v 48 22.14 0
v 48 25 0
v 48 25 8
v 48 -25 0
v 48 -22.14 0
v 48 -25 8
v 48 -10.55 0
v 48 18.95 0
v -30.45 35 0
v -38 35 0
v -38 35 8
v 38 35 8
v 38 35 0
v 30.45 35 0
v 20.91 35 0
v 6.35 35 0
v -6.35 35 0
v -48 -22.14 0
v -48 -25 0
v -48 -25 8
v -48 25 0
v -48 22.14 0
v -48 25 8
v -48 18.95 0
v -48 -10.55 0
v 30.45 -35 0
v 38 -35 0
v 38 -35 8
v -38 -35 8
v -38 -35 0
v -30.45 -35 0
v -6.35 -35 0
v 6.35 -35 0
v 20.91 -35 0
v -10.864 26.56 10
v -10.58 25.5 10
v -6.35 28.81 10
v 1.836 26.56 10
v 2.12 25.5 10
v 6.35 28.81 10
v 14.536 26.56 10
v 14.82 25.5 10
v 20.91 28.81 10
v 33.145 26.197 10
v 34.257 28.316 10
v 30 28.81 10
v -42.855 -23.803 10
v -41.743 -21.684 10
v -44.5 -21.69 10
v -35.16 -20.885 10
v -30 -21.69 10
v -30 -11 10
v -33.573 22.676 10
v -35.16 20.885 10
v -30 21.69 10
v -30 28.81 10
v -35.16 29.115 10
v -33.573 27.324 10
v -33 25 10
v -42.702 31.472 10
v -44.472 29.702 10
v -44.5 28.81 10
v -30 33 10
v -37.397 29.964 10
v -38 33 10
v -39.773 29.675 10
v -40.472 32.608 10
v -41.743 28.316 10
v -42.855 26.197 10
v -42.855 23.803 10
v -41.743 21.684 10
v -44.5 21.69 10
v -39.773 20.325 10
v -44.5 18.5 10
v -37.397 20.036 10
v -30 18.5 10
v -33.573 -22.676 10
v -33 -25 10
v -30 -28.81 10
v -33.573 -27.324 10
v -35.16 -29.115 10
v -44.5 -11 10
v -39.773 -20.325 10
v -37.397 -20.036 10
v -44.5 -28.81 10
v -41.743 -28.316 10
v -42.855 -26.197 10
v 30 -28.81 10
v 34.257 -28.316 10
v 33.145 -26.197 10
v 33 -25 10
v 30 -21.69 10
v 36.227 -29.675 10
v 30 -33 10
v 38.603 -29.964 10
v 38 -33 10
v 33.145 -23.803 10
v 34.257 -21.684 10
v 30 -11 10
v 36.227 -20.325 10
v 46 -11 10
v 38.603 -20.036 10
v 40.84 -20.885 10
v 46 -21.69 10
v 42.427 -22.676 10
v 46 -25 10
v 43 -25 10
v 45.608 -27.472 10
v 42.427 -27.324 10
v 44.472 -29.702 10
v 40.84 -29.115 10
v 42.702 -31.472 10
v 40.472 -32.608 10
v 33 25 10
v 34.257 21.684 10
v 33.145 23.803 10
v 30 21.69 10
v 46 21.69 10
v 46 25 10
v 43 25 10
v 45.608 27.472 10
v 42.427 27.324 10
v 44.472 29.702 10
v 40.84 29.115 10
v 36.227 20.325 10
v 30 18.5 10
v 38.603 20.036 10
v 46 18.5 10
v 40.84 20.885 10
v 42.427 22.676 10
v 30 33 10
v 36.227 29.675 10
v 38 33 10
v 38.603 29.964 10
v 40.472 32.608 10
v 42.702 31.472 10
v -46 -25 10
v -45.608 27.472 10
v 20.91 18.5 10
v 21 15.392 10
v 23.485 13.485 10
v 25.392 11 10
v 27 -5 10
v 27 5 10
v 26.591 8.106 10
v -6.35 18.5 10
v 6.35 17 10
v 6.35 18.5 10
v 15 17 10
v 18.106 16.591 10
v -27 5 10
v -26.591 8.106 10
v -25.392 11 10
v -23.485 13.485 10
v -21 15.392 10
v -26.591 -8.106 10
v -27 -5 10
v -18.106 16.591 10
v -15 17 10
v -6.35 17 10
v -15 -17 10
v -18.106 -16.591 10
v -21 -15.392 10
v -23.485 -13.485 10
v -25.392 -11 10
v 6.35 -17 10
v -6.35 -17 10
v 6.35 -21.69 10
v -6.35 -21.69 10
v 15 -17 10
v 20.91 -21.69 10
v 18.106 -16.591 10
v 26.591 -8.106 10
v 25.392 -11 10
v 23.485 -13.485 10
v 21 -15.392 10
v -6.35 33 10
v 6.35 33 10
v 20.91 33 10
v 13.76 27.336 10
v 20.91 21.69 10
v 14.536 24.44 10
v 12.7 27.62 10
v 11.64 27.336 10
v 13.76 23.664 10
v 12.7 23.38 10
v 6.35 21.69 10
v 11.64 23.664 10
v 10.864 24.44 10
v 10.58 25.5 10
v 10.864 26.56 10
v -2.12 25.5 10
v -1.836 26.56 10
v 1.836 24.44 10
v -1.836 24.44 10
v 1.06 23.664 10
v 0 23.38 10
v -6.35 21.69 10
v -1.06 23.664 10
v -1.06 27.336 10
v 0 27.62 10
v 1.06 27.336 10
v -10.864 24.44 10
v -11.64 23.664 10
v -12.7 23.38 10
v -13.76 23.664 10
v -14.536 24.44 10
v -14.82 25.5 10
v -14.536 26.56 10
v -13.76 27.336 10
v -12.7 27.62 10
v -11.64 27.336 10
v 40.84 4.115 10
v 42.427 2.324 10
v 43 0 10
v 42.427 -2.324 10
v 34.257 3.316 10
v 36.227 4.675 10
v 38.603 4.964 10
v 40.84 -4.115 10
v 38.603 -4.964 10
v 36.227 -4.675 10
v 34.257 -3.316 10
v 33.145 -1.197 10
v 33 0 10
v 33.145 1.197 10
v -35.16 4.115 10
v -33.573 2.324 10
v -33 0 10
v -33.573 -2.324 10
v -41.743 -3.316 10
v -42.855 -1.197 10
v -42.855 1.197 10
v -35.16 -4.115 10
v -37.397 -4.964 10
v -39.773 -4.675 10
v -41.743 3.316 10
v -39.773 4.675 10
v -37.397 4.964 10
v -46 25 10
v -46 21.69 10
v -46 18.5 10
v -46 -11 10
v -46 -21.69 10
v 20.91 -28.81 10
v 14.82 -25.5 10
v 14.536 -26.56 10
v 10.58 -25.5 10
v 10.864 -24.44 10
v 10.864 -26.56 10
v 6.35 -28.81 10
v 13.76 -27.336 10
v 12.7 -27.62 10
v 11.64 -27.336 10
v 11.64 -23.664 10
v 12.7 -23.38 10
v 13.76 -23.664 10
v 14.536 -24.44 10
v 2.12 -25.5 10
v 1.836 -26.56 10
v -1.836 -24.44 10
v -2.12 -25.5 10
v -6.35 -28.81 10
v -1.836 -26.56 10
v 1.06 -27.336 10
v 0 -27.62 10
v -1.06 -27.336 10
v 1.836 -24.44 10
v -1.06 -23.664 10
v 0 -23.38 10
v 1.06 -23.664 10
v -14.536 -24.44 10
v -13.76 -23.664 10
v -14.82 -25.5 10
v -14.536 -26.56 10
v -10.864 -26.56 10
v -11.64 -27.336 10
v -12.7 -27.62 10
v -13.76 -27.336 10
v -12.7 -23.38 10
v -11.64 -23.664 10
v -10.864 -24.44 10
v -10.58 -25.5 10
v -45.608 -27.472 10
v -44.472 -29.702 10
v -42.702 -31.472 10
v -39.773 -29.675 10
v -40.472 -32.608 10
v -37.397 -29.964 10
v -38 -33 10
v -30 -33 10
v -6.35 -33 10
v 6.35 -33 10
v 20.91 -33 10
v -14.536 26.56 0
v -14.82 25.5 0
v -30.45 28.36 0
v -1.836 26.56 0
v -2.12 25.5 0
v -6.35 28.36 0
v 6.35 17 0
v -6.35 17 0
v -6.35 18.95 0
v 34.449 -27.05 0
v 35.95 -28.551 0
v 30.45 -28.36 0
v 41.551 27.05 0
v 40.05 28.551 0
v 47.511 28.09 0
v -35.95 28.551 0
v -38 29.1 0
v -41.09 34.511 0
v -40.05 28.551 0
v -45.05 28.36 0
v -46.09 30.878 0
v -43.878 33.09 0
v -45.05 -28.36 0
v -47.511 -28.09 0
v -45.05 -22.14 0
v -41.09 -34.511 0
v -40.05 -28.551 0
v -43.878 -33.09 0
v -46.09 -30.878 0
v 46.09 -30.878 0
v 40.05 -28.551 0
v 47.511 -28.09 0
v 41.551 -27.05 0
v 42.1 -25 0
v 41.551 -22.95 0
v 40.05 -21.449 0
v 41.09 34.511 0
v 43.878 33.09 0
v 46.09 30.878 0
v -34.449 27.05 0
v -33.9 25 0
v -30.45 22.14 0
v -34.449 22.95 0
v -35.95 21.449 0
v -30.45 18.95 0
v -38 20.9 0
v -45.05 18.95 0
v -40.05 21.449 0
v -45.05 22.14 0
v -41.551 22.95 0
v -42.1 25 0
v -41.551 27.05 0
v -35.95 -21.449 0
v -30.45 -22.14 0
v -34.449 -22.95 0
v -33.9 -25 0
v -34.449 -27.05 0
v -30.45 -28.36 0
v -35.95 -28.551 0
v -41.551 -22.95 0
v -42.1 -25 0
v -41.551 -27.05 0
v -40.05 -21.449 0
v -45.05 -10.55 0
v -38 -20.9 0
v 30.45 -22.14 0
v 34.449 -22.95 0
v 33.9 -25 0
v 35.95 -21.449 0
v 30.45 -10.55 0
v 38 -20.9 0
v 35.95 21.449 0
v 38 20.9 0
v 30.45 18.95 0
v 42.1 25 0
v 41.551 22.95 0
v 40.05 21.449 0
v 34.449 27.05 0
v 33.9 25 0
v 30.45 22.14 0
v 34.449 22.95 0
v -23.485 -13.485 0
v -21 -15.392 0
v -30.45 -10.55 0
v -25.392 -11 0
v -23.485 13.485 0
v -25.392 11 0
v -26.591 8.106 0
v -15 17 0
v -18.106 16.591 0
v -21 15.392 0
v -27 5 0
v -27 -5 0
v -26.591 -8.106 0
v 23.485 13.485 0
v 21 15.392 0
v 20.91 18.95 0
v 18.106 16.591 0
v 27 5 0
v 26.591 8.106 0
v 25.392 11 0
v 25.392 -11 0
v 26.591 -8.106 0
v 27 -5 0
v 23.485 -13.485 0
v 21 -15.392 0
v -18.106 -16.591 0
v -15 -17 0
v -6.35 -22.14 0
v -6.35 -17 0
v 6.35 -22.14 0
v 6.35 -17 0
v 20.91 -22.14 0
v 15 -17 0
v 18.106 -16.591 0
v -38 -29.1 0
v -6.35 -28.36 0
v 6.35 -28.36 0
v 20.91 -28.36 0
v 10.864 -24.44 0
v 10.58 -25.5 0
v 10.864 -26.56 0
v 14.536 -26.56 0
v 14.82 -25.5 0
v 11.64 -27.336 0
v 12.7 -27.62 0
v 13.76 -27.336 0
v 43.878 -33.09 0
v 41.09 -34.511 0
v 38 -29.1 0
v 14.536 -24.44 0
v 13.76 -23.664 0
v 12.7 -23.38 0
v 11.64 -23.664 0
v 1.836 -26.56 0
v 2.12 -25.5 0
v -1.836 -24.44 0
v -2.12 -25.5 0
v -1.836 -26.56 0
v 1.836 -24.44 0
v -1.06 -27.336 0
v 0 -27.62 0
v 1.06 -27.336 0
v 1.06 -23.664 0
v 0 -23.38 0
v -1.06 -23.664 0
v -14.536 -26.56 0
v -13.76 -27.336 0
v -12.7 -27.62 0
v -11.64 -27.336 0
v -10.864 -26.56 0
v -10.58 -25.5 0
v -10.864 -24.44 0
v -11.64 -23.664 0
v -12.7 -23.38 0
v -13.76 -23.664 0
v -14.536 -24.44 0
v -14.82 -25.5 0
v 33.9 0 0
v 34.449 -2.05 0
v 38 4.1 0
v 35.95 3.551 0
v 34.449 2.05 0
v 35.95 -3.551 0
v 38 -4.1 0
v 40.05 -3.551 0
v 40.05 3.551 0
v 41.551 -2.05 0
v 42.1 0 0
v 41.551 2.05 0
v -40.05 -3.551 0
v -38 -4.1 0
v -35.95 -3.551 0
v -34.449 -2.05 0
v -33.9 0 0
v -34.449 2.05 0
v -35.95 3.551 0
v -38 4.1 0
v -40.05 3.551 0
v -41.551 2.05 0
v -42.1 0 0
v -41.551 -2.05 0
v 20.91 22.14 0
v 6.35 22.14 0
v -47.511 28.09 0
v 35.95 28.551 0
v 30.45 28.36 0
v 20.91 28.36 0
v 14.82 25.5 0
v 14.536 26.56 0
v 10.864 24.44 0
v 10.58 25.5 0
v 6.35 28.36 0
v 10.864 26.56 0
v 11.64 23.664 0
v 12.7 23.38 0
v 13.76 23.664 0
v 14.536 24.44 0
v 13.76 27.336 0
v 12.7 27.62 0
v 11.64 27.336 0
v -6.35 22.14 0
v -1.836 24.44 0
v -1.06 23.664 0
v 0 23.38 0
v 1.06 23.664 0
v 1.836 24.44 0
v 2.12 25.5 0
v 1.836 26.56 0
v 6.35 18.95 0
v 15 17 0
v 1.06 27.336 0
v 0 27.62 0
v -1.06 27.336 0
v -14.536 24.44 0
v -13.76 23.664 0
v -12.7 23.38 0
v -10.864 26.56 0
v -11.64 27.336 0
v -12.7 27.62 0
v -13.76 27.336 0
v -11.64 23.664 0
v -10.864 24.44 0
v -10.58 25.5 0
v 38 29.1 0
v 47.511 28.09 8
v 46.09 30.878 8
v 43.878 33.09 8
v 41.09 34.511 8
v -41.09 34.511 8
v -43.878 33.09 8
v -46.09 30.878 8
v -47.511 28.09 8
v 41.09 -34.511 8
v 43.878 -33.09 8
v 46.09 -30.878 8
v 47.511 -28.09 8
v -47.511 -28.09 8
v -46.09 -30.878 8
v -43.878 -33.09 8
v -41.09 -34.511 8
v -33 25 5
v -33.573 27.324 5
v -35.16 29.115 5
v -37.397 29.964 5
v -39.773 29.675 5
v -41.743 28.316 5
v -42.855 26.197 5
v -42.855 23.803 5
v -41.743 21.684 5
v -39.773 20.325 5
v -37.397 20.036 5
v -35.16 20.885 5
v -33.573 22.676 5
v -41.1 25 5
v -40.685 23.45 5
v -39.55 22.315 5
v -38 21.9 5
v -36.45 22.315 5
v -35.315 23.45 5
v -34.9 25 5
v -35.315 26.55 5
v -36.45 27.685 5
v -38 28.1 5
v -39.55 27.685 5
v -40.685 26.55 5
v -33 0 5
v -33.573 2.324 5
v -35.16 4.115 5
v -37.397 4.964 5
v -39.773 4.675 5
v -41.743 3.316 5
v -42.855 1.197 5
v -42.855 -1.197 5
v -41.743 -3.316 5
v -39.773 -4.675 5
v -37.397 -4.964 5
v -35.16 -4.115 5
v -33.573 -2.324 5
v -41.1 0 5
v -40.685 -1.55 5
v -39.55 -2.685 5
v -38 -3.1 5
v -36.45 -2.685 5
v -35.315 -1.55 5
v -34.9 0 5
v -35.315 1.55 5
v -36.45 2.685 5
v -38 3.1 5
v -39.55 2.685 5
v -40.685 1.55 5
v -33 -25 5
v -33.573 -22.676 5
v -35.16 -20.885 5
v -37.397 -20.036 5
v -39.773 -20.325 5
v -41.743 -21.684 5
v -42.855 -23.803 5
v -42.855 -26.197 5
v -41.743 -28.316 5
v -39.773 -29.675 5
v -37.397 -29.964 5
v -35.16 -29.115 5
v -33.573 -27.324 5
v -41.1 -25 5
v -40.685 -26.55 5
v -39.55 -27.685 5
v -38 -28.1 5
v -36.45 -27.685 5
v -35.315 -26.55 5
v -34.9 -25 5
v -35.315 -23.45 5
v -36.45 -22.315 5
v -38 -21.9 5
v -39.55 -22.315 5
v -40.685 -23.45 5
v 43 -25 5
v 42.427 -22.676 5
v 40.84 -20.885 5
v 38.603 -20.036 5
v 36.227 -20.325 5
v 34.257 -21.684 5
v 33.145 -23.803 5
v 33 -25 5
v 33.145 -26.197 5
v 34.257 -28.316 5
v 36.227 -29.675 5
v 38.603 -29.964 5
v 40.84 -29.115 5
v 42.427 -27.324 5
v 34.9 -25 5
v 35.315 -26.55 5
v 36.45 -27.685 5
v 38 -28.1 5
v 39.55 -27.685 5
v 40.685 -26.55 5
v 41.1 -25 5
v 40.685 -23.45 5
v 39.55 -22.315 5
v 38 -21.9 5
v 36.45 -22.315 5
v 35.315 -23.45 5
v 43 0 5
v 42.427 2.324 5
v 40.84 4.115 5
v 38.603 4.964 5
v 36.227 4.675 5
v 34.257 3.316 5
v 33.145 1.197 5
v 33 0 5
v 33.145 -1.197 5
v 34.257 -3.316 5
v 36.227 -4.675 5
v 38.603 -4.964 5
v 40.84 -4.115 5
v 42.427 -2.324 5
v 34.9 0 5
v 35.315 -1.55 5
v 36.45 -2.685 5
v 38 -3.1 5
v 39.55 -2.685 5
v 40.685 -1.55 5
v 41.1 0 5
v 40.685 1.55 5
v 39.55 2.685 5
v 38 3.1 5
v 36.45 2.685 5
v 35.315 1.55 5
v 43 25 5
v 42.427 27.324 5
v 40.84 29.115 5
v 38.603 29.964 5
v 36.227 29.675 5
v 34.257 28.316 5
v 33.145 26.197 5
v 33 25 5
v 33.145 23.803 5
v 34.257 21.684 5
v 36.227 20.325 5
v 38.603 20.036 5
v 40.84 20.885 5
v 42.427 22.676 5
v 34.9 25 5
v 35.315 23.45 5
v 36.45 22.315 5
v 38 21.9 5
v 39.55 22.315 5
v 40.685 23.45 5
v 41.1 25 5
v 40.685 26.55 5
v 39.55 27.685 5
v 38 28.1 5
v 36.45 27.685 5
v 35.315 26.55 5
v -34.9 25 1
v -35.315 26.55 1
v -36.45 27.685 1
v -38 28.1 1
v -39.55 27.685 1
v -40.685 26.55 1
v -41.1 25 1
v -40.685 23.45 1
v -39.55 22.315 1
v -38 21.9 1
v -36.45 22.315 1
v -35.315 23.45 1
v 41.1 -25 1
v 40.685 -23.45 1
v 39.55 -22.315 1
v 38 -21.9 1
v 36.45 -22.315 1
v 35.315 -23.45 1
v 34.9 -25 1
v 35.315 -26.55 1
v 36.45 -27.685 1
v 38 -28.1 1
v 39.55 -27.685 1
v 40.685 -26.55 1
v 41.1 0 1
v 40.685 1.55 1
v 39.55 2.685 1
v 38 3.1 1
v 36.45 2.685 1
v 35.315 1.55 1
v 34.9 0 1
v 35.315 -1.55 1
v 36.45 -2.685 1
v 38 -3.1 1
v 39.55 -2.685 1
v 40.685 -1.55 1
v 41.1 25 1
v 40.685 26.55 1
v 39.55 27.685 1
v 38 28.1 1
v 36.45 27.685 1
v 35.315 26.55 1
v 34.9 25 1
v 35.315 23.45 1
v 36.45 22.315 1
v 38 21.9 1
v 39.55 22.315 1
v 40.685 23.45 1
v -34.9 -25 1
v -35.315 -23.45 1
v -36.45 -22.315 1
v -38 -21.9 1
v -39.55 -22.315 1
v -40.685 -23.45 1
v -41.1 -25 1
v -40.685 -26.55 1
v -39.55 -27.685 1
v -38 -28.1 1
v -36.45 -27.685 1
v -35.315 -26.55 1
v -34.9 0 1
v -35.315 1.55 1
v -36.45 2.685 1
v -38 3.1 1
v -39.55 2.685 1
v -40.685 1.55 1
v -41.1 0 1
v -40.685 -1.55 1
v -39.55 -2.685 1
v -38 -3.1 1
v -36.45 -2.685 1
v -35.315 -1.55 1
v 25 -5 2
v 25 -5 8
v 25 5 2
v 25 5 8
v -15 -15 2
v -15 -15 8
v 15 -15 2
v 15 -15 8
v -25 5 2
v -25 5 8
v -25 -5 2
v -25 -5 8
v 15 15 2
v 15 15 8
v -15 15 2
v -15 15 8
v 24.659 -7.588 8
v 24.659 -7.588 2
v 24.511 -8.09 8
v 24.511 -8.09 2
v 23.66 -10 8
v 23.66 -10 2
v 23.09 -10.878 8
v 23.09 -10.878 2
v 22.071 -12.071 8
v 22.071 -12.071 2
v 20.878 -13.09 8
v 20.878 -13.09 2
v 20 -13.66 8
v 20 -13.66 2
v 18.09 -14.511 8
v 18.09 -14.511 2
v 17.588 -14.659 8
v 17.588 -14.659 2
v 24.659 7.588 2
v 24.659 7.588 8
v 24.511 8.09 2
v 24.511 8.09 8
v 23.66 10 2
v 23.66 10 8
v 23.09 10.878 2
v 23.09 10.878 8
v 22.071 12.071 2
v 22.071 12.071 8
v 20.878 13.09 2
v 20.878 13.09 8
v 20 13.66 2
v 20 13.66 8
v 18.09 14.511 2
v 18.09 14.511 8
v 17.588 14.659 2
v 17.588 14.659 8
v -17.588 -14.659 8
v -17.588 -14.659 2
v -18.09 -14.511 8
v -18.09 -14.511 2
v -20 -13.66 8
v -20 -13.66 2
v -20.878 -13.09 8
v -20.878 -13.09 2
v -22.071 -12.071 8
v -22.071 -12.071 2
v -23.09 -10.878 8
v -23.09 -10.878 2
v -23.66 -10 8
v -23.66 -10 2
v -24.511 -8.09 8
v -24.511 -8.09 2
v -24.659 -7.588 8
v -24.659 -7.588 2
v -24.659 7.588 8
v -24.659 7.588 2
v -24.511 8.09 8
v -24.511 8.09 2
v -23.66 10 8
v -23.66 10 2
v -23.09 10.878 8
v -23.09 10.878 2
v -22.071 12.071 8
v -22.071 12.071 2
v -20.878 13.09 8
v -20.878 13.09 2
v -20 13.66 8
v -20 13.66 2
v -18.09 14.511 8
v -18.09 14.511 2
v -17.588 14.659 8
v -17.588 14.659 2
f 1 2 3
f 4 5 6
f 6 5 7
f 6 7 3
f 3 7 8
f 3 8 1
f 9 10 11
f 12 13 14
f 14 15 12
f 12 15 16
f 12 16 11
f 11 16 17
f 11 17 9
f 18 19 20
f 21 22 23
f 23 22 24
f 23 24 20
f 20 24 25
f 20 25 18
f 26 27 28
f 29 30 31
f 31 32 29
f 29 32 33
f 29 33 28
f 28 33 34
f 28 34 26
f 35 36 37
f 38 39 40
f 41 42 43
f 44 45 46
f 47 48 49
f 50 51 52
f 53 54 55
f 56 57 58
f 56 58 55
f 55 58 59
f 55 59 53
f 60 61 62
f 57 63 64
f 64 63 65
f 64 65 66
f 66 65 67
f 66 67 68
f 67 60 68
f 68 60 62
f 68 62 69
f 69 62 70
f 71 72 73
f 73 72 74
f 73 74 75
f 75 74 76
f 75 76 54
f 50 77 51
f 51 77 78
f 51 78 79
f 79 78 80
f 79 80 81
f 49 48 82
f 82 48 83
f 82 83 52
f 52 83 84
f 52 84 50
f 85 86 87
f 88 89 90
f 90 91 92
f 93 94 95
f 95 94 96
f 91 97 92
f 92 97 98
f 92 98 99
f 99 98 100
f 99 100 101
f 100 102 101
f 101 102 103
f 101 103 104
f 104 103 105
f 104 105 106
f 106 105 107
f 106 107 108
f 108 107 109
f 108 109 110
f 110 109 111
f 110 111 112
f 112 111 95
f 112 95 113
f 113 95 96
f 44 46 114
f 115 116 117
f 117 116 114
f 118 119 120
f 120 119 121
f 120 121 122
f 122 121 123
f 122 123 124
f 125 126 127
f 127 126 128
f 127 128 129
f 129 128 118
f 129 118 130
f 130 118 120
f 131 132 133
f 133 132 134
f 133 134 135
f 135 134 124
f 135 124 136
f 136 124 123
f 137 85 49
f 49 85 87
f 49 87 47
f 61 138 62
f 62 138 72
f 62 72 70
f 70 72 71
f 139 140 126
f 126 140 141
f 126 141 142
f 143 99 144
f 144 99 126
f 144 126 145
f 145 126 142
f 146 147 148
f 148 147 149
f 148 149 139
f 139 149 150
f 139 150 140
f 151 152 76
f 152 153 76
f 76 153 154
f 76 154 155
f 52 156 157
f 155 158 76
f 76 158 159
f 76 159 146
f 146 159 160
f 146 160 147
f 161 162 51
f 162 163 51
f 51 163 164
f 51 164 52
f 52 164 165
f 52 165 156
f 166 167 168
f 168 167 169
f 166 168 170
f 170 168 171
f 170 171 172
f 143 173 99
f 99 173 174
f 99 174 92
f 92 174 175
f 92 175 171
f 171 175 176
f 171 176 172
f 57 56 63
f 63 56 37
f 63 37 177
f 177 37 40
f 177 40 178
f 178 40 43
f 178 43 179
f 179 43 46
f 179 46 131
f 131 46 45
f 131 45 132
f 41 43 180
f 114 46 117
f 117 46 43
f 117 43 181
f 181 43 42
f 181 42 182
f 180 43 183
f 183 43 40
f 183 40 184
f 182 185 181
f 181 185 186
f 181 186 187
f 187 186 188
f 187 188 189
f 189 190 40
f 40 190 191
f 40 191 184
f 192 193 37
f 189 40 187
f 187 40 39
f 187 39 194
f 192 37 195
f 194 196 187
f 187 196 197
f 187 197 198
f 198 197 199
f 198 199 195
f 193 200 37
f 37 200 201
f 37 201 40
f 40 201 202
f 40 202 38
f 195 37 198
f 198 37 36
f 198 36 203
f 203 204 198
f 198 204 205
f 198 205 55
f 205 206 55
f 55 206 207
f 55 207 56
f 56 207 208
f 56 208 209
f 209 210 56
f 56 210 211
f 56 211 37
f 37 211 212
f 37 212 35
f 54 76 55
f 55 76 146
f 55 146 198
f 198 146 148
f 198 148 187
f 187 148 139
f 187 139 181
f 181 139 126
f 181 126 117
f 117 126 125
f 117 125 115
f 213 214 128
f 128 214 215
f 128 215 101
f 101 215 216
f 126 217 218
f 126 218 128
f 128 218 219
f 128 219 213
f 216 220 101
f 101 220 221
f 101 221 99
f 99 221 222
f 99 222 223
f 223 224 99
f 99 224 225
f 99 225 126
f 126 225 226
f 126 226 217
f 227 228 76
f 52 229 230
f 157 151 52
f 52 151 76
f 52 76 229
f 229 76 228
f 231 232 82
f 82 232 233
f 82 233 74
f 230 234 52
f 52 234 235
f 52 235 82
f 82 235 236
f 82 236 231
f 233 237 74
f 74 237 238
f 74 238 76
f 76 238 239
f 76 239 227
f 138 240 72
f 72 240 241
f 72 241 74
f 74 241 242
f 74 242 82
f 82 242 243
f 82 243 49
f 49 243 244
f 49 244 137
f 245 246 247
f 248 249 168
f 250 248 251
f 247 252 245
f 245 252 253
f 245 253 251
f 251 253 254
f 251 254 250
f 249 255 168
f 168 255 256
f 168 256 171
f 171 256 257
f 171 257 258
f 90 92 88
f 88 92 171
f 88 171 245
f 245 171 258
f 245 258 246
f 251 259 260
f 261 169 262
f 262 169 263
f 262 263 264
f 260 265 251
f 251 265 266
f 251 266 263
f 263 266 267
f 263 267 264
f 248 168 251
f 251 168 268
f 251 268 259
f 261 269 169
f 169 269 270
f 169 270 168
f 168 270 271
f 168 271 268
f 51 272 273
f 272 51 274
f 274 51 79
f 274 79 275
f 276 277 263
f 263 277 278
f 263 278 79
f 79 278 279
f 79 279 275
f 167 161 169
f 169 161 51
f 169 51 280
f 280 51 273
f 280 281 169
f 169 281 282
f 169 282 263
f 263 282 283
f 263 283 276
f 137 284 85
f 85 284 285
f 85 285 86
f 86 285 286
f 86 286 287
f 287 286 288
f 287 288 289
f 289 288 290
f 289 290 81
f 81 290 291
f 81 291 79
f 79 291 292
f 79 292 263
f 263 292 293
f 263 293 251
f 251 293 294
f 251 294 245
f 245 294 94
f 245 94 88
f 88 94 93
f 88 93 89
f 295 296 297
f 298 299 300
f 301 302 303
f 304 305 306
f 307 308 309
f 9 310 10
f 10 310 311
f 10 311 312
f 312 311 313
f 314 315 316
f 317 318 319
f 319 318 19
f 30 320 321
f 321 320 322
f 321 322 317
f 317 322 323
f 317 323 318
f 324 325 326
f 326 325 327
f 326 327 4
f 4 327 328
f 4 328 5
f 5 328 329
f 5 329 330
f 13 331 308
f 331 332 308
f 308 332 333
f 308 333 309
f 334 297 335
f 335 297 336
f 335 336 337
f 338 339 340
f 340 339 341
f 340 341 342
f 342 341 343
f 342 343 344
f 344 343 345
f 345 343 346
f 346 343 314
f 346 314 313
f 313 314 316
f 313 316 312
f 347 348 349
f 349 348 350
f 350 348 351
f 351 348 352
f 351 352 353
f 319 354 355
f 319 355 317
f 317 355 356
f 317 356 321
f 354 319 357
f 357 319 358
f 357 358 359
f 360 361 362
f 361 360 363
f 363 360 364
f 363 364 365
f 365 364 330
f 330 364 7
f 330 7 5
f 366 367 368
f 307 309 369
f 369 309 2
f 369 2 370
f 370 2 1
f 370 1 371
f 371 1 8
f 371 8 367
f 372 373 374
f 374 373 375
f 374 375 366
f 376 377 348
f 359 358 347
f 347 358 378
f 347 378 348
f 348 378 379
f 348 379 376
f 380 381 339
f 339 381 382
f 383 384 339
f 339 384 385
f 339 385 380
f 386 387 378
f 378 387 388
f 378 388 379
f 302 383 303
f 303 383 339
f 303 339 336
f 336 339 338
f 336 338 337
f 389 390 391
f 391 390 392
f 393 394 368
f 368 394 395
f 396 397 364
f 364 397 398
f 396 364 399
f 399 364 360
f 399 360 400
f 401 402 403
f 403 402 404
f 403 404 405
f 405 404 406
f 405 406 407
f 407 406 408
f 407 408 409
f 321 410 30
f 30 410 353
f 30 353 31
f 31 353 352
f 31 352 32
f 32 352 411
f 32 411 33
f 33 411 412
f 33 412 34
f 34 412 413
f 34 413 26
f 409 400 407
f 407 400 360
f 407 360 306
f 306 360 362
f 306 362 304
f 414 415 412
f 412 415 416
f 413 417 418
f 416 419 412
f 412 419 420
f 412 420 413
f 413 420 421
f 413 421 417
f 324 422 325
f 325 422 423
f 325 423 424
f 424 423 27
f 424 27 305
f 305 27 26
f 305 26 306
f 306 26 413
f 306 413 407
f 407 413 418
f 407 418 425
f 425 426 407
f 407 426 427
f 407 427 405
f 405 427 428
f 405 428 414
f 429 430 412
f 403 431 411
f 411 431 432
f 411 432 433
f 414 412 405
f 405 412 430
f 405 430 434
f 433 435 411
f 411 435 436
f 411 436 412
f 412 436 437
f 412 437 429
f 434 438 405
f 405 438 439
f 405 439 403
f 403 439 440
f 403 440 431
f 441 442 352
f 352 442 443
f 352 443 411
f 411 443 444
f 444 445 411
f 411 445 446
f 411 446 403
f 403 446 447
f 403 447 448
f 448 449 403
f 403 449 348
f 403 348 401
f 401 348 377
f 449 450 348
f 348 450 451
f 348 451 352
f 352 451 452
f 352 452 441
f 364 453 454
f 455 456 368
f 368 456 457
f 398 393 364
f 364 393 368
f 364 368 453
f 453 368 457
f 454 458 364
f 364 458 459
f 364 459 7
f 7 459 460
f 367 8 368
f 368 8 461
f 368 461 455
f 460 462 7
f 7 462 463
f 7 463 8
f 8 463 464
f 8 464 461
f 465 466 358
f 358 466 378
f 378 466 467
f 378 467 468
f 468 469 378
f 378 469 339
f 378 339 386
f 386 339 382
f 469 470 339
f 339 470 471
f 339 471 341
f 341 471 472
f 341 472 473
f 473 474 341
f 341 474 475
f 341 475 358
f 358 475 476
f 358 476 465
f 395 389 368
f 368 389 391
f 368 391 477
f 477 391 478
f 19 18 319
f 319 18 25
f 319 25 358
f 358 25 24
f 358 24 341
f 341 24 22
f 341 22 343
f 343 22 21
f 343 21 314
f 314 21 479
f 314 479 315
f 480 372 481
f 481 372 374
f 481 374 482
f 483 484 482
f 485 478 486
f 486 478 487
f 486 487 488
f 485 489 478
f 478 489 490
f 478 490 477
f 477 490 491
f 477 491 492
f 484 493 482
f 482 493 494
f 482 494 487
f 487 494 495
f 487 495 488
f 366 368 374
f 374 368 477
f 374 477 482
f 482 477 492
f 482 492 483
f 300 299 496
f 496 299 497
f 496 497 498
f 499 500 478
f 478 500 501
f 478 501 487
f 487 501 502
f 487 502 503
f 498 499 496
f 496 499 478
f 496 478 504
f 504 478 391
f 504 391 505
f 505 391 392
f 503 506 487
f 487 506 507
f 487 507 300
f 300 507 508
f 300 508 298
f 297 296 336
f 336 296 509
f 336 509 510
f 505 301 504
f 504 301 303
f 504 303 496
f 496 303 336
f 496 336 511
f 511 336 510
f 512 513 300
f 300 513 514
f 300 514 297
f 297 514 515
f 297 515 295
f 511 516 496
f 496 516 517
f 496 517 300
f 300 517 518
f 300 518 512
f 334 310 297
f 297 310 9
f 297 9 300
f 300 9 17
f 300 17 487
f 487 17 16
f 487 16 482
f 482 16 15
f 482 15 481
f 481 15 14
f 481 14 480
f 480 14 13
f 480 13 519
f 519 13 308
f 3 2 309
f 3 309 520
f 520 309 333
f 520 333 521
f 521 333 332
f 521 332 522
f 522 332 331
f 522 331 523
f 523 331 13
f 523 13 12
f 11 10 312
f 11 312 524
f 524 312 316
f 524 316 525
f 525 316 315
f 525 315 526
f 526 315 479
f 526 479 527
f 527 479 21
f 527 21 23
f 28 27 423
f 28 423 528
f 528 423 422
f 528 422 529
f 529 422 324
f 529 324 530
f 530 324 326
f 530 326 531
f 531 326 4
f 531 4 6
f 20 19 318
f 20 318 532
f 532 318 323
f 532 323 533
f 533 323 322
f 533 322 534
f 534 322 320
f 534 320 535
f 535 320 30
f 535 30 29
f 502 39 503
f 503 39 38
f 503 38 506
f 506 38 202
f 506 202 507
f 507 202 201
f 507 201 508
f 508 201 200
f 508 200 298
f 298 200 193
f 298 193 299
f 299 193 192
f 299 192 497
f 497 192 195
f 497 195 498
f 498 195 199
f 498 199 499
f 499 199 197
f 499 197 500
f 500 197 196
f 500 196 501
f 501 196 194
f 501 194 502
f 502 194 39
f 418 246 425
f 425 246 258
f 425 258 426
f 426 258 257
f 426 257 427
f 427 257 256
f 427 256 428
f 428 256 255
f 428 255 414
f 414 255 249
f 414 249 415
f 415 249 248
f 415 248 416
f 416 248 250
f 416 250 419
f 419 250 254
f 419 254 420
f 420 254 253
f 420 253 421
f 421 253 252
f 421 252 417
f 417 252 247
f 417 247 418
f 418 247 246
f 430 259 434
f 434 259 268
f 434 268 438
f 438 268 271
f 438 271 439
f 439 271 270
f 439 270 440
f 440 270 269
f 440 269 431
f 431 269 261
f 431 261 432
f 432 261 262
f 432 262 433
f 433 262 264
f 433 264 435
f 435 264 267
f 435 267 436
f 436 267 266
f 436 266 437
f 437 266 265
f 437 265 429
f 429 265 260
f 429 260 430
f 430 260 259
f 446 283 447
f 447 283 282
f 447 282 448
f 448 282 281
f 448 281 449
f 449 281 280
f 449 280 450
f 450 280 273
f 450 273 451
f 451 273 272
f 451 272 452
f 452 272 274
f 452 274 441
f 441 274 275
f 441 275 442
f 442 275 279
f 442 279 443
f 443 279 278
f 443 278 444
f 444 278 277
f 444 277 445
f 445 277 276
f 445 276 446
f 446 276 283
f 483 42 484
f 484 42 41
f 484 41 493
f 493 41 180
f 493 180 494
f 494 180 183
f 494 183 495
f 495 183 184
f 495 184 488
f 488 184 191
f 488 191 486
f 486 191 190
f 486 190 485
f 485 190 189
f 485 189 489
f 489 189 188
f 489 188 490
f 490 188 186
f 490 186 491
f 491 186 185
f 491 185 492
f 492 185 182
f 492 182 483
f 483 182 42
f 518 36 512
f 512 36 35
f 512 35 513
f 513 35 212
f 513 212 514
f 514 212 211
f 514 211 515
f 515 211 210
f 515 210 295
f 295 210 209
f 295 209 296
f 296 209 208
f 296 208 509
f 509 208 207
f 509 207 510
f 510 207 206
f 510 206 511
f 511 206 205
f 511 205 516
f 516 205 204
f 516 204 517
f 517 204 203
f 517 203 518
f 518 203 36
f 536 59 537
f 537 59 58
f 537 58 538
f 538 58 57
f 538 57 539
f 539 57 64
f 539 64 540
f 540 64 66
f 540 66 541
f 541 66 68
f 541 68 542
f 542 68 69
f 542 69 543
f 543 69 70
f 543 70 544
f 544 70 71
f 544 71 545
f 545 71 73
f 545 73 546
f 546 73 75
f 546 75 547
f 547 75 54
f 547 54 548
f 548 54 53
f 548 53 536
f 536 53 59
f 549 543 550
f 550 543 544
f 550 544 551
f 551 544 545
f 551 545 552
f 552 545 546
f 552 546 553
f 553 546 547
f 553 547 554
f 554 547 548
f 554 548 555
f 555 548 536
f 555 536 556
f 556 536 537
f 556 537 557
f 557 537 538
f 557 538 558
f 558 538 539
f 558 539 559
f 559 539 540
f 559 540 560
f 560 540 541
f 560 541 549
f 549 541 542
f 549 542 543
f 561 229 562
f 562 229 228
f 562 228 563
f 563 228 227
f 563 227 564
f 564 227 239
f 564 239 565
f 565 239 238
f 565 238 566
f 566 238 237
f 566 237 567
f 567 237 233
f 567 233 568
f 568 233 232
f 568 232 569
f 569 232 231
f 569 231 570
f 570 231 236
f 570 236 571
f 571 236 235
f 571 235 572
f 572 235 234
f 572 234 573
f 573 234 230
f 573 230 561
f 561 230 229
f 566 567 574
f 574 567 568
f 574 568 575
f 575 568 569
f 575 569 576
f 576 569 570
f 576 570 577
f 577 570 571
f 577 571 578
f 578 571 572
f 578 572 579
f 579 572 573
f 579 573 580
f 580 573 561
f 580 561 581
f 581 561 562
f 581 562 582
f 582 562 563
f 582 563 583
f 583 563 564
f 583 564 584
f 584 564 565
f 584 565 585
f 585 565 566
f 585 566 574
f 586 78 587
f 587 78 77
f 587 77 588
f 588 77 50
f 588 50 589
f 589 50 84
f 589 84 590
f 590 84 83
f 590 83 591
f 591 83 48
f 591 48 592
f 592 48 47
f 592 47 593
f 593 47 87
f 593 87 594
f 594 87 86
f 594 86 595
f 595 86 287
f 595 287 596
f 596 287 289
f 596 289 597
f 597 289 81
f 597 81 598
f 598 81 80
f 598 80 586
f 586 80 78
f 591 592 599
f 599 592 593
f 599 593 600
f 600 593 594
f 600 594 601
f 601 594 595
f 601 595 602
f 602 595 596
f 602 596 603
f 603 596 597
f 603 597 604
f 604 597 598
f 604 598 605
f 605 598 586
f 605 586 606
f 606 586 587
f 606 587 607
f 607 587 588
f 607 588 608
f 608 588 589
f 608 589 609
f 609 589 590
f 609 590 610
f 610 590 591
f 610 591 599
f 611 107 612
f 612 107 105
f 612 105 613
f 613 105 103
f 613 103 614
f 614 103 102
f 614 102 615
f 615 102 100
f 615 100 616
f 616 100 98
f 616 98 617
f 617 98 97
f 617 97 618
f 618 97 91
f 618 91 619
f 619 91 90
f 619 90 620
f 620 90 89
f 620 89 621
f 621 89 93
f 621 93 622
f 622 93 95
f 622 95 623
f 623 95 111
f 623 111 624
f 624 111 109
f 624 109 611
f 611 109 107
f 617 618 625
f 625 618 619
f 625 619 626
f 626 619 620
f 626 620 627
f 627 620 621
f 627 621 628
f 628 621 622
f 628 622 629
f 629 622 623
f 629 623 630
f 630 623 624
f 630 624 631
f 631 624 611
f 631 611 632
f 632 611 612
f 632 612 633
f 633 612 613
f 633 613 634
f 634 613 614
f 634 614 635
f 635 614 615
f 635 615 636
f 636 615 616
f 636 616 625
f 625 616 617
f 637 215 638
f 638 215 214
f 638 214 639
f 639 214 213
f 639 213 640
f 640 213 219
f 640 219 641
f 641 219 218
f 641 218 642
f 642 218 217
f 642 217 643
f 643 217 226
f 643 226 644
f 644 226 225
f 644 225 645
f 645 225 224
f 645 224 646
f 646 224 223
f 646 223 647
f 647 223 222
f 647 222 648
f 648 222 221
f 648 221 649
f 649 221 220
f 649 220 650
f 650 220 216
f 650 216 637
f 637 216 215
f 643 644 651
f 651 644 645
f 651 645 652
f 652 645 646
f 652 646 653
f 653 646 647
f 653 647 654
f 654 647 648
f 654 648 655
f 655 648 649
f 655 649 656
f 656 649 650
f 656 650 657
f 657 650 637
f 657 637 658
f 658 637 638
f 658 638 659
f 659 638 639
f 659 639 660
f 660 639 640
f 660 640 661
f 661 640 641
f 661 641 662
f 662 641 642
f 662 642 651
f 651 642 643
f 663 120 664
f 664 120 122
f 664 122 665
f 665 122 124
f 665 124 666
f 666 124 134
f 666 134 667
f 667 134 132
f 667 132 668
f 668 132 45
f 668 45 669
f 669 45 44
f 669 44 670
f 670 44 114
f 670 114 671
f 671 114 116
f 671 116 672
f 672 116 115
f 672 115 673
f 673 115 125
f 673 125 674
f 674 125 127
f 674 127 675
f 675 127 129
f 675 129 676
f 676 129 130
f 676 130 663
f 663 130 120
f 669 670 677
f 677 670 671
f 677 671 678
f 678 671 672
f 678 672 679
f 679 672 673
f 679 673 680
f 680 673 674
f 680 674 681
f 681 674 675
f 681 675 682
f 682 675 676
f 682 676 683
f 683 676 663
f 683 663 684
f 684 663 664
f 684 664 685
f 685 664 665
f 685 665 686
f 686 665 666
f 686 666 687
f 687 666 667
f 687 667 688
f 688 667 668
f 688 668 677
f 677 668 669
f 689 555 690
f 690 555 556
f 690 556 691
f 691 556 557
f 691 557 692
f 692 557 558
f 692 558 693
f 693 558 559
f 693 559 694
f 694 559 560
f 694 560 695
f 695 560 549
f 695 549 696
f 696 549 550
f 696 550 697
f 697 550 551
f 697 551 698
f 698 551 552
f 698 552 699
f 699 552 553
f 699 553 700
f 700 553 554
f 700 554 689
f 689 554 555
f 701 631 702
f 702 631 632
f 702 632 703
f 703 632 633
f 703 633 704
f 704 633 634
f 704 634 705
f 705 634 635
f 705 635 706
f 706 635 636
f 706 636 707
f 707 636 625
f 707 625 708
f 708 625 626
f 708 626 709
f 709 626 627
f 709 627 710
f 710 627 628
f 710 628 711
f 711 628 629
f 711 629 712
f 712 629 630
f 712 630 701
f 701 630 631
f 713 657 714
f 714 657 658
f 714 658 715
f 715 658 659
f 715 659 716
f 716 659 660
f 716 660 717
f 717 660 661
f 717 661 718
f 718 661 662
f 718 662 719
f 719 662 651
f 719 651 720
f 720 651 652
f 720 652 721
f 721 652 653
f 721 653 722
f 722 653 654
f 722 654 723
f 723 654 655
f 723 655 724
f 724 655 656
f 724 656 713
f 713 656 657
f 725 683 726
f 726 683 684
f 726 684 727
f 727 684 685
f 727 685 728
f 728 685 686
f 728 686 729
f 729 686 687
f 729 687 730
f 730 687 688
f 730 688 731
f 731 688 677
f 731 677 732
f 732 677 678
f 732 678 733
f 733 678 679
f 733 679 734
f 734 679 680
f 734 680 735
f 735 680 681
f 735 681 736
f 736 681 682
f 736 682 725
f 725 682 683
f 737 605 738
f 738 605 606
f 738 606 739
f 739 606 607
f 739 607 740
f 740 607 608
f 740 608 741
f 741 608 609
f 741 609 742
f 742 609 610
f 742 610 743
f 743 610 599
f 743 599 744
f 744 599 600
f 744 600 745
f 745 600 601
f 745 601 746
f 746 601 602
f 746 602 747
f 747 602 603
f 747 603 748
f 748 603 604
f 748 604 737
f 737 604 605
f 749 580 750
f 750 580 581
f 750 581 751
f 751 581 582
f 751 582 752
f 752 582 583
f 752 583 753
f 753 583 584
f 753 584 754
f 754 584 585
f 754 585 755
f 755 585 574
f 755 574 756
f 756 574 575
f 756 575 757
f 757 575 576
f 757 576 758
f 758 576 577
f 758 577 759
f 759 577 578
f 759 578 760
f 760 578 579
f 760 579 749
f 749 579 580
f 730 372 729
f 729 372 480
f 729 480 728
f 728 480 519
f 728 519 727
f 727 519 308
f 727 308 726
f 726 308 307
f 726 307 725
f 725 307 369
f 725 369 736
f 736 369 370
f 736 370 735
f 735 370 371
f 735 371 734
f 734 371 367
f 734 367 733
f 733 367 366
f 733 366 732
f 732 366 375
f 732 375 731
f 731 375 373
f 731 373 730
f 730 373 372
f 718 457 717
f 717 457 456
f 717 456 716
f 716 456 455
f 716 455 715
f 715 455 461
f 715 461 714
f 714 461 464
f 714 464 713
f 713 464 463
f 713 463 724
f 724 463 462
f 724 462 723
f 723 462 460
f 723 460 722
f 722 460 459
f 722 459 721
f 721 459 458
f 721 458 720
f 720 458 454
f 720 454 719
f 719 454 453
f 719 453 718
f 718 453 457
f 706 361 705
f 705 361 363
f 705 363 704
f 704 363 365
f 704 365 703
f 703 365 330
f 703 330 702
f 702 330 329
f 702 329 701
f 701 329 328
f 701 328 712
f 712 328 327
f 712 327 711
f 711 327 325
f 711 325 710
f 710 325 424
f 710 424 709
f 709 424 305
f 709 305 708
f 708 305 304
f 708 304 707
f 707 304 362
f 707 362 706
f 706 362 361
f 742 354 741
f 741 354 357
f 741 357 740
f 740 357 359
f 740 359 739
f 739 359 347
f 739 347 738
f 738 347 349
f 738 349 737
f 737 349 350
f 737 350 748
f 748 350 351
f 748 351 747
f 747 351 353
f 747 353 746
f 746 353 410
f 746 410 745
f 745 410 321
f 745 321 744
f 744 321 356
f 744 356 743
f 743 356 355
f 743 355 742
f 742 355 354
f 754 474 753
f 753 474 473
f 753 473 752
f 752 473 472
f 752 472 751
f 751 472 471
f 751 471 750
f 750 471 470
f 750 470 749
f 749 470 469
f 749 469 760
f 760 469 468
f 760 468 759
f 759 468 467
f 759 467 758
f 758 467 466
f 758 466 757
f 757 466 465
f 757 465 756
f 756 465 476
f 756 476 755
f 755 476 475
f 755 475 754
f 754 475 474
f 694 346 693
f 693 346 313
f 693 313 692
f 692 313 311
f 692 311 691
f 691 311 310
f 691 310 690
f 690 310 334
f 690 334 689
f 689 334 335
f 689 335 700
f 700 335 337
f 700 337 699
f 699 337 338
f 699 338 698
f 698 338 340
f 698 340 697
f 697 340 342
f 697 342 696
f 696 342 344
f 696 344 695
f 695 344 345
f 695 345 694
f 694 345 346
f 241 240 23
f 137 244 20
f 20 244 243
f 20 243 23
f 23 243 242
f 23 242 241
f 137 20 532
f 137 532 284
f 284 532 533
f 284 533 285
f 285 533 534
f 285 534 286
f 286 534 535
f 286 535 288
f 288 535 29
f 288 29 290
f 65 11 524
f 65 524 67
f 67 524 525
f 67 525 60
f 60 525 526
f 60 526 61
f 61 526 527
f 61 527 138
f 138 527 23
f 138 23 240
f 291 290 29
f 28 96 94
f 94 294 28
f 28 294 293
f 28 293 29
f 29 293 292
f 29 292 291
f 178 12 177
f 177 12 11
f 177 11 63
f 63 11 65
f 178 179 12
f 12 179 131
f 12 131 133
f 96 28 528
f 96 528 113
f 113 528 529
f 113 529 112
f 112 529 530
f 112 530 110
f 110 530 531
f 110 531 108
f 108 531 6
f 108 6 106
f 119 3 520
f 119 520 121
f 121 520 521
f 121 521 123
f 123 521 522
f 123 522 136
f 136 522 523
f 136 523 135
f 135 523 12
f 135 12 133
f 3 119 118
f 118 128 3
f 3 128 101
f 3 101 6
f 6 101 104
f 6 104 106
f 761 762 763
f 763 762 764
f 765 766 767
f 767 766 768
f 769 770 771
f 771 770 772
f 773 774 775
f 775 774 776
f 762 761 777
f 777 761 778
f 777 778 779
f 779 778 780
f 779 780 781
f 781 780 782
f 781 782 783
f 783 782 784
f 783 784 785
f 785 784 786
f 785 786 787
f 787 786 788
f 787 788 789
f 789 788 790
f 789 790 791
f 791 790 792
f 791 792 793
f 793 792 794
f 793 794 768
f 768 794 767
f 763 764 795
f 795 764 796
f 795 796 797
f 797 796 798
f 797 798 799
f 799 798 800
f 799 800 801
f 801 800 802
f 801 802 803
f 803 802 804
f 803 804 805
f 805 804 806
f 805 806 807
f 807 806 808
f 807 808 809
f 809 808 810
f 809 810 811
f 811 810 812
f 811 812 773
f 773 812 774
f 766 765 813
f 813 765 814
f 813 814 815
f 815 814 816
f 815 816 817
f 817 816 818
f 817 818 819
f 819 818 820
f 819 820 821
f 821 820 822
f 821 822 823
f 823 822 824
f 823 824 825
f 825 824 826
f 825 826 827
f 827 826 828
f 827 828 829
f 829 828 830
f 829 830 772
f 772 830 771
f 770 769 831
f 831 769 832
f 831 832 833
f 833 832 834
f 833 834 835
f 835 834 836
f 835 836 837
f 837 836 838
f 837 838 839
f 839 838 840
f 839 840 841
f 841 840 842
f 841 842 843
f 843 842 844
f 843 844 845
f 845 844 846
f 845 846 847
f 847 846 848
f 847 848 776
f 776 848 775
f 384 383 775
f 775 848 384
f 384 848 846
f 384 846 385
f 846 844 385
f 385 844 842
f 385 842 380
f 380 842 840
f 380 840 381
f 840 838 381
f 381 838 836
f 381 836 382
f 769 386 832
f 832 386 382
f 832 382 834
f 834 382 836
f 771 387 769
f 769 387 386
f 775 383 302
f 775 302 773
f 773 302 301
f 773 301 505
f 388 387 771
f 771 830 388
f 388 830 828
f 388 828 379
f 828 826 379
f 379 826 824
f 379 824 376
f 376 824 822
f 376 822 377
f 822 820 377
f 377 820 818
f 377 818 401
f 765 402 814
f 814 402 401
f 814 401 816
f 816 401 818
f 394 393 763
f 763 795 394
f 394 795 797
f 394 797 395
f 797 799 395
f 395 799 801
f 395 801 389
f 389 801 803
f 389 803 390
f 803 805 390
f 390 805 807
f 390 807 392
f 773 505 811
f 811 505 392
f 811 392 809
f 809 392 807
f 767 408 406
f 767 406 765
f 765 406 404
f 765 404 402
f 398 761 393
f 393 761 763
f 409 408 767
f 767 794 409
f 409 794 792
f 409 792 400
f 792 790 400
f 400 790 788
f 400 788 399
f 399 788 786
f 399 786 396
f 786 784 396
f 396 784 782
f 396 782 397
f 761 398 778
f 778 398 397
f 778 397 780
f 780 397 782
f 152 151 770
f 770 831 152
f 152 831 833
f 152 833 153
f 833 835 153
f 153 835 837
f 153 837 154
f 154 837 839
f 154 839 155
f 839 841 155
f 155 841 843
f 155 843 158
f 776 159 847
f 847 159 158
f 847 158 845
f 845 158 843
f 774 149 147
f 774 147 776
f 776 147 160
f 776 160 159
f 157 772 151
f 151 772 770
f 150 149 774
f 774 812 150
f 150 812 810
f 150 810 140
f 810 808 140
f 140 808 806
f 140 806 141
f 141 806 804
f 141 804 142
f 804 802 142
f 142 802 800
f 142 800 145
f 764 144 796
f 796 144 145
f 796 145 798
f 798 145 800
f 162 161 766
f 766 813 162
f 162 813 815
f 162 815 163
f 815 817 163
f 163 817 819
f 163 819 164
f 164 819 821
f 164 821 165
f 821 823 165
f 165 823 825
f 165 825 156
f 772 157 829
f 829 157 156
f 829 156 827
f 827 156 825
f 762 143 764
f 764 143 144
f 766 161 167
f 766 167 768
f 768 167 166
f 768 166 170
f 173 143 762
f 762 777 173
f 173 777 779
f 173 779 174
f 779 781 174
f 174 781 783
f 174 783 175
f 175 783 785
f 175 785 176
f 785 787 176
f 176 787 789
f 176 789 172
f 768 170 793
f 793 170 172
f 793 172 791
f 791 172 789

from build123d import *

# Parameters (mm, degrees)
SKETCH_1_W          = 96
SKETCH_1_H          = 70
EXTRUDE_1_DEPTH     = 10
FILLET_1_R          = 10
SKETCH_2_R          = 2.12
CUT_EXTRUDE_1_DEPTH = 10
SKETCH_3_R          = 5
CUT_EXTRUDE_2_DEPTH = 5
SKETCH_4_R          = 3.1
CUT_EXTRUDE_3_DEPTH = 5
CHAMFER_1_SIZE      = 1
CHAMFER_2_SIZE      = 2
SKETCH_5_W          = 50
SKETCH_5_H          = 30
CUT_EXTRUDE_4_DEPTH = 10
FILLET_2_R          = 10
CHAMFER_3_SIZE      = 2


with BuildPart() as part:
    # 草图1 → 凸台-拉伸1 (new body)
    with BuildSketch(Plane.XY):
        Rectangle(SKETCH_1_W, SKETCH_1_H)
    extrude(amount=EXTRUDE_1_DEPTH)

    # 圆角1
    fillet_1_edges = [part.edges().sort_by_distance(p)[0] for p in [
        (48, -35, 5),
        (-48, -35, 5),
        (-48, 35, 5),
        (48, 35, 5),
    ]]
    fillet(fillet_1_edges, radius=FILLET_1_R)

    # 草图2 → 切除-拉伸1 (cut)
    with BuildSketch(Plane.XY.offset(10)):
        with Locations((0, 25.5)):
            Circle(SKETCH_2_R)
        with Locations((-12.7, 25.5)):
            Circle(SKETCH_2_R)
        with Locations(Location((12.7, 25.5, 0), (0, 0, 180))):
            Circle(SKETCH_2_R)
        with Locations((-12.7, -25.5)):
            Circle(SKETCH_2_R)
        with Locations((0, -25.5)):
            Circle(SKETCH_2_R)
        with Locations((12.7, -25.5)):
            Circle(SKETCH_2_R)
    extrude(amount=-CUT_EXTRUDE_1_DEPTH, mode=Mode.SUBTRACT)

    # 草图3 → 切除-拉伸2 (cut)
    with BuildSketch(Plane.XY.offset(10)):
        with Locations((-38, 25)):
            Circle(SKETCH_3_R)
        with Locations((-38, 0)):
            Circle(SKETCH_3_R)
        with Locations((-38, -25)):
            Circle(SKETCH_3_R)
        with Locations(Location((38, -25, 0), (0, 0, 180))):
            Circle(SKETCH_3_R)
        with Locations(Location((38, 0, 0), (0, 0, 180))):
            Circle(SKETCH_3_R)
        with Locations(Location((38, 25, 0), (0, 0, 180))):
            Circle(SKETCH_3_R)
    extrude(amount=-CUT_EXTRUDE_2_DEPTH, mode=Mode.SUBTRACT)

    # 草图4 → 切除-拉伸3 (cut)
    with BuildSketch(Plane.XY.offset(5)):
        with Locations((-38, 25)):
            Circle(SKETCH_4_R)
        with Locations((-38, 0)):
            Circle(SKETCH_4_R)
        with Locations((-38, -25)):
            Circle(SKETCH_4_R)
        with Locations((38, 25)):
            Circle(SKETCH_4_R)
        with Locations((38, 0)):
            Circle(SKETCH_4_R)
        with Locations((38, -25)):
            Circle(SKETCH_4_R)
    extrude(amount=-CUT_EXTRUDE_3_DEPTH, mode=Mode.SUBTRACT)

    # 倒角1
    chamfer_1_edges = [part.edges().sort_by_distance(p)[0] for p in [
        (34.9, 0, 0),
        (34.9, -25, 0),
        (-41.1, 25, 0),
        (-41.1, 0, 0),
        (-41.1, -25, 0),
        (34.9, 25, 0),
    ]]
    chamfer(chamfer_1_edges, length=CHAMFER_1_SIZE)

    # 倒角2
    chamfer_2_edges = [part.edges().sort_by_distance(p)[0] for p in [
        (0, 35, 10),
        (48, 0, 10),
        (-48, 0, 10),
        (0, -35, 10),
        (-45.071067812, -32.071067812, 10),
        (45.071067812, -32.071067812, 10),
        (-45.071067812, 32.071067812, 10),
        (45.071067812, 32.071067812, 10),
    ]]
    chamfer(chamfer_2_edges, length=CHAMFER_2_SIZE)

    # 草图5 → 切除-拉伸4 (cut)
    with BuildSketch(Plane.XY.offset(10)):
        Rectangle(SKETCH_5_W, SKETCH_5_H)
    extrude(amount=-CUT_EXTRUDE_4_DEPTH, mode=Mode.SUBTRACT)

    # 圆角2
    fillet_2_edges = [part.edges().sort_by_distance(p)[0] for p in [
        (25, 15, 5),
        (25, -15, 5),
        (-25, -15, 5),
        (-25, 15, 5),
    ]]
    fillet(fillet_2_edges, radius=FILLET_2_R)

    # 倒角3
    chamfer_3_edges = [part.edges().sort_by_distance(p)[0] for p in [
        (25, 0, 10),
        (25, 0, 0),
        (0, -15, 10),
        (0, -15, 0),
        (0, 15, 10),
        (0, 15, 0),
        (-25, 0, 10),
        (-25, 0, 0),
        (22.071067812, -12.071067812, 10),
        (22.071067812, -12.071067812, 0),
        (22.071067812, 12.071067812, 10),
        (22.071067812, 12.071067812, 0),
        (-22.071067812, -12.071067812, 10),
        (-22.071067812, -12.071067812, 0),
        (-22.071067812, 12.071067812, 10),
        (-22.071067812, 12.071067812, 0),
    ]]
    chamfer(chamfer_3_edges, length=CHAMFER_3_SIZE)


solid = part.part
